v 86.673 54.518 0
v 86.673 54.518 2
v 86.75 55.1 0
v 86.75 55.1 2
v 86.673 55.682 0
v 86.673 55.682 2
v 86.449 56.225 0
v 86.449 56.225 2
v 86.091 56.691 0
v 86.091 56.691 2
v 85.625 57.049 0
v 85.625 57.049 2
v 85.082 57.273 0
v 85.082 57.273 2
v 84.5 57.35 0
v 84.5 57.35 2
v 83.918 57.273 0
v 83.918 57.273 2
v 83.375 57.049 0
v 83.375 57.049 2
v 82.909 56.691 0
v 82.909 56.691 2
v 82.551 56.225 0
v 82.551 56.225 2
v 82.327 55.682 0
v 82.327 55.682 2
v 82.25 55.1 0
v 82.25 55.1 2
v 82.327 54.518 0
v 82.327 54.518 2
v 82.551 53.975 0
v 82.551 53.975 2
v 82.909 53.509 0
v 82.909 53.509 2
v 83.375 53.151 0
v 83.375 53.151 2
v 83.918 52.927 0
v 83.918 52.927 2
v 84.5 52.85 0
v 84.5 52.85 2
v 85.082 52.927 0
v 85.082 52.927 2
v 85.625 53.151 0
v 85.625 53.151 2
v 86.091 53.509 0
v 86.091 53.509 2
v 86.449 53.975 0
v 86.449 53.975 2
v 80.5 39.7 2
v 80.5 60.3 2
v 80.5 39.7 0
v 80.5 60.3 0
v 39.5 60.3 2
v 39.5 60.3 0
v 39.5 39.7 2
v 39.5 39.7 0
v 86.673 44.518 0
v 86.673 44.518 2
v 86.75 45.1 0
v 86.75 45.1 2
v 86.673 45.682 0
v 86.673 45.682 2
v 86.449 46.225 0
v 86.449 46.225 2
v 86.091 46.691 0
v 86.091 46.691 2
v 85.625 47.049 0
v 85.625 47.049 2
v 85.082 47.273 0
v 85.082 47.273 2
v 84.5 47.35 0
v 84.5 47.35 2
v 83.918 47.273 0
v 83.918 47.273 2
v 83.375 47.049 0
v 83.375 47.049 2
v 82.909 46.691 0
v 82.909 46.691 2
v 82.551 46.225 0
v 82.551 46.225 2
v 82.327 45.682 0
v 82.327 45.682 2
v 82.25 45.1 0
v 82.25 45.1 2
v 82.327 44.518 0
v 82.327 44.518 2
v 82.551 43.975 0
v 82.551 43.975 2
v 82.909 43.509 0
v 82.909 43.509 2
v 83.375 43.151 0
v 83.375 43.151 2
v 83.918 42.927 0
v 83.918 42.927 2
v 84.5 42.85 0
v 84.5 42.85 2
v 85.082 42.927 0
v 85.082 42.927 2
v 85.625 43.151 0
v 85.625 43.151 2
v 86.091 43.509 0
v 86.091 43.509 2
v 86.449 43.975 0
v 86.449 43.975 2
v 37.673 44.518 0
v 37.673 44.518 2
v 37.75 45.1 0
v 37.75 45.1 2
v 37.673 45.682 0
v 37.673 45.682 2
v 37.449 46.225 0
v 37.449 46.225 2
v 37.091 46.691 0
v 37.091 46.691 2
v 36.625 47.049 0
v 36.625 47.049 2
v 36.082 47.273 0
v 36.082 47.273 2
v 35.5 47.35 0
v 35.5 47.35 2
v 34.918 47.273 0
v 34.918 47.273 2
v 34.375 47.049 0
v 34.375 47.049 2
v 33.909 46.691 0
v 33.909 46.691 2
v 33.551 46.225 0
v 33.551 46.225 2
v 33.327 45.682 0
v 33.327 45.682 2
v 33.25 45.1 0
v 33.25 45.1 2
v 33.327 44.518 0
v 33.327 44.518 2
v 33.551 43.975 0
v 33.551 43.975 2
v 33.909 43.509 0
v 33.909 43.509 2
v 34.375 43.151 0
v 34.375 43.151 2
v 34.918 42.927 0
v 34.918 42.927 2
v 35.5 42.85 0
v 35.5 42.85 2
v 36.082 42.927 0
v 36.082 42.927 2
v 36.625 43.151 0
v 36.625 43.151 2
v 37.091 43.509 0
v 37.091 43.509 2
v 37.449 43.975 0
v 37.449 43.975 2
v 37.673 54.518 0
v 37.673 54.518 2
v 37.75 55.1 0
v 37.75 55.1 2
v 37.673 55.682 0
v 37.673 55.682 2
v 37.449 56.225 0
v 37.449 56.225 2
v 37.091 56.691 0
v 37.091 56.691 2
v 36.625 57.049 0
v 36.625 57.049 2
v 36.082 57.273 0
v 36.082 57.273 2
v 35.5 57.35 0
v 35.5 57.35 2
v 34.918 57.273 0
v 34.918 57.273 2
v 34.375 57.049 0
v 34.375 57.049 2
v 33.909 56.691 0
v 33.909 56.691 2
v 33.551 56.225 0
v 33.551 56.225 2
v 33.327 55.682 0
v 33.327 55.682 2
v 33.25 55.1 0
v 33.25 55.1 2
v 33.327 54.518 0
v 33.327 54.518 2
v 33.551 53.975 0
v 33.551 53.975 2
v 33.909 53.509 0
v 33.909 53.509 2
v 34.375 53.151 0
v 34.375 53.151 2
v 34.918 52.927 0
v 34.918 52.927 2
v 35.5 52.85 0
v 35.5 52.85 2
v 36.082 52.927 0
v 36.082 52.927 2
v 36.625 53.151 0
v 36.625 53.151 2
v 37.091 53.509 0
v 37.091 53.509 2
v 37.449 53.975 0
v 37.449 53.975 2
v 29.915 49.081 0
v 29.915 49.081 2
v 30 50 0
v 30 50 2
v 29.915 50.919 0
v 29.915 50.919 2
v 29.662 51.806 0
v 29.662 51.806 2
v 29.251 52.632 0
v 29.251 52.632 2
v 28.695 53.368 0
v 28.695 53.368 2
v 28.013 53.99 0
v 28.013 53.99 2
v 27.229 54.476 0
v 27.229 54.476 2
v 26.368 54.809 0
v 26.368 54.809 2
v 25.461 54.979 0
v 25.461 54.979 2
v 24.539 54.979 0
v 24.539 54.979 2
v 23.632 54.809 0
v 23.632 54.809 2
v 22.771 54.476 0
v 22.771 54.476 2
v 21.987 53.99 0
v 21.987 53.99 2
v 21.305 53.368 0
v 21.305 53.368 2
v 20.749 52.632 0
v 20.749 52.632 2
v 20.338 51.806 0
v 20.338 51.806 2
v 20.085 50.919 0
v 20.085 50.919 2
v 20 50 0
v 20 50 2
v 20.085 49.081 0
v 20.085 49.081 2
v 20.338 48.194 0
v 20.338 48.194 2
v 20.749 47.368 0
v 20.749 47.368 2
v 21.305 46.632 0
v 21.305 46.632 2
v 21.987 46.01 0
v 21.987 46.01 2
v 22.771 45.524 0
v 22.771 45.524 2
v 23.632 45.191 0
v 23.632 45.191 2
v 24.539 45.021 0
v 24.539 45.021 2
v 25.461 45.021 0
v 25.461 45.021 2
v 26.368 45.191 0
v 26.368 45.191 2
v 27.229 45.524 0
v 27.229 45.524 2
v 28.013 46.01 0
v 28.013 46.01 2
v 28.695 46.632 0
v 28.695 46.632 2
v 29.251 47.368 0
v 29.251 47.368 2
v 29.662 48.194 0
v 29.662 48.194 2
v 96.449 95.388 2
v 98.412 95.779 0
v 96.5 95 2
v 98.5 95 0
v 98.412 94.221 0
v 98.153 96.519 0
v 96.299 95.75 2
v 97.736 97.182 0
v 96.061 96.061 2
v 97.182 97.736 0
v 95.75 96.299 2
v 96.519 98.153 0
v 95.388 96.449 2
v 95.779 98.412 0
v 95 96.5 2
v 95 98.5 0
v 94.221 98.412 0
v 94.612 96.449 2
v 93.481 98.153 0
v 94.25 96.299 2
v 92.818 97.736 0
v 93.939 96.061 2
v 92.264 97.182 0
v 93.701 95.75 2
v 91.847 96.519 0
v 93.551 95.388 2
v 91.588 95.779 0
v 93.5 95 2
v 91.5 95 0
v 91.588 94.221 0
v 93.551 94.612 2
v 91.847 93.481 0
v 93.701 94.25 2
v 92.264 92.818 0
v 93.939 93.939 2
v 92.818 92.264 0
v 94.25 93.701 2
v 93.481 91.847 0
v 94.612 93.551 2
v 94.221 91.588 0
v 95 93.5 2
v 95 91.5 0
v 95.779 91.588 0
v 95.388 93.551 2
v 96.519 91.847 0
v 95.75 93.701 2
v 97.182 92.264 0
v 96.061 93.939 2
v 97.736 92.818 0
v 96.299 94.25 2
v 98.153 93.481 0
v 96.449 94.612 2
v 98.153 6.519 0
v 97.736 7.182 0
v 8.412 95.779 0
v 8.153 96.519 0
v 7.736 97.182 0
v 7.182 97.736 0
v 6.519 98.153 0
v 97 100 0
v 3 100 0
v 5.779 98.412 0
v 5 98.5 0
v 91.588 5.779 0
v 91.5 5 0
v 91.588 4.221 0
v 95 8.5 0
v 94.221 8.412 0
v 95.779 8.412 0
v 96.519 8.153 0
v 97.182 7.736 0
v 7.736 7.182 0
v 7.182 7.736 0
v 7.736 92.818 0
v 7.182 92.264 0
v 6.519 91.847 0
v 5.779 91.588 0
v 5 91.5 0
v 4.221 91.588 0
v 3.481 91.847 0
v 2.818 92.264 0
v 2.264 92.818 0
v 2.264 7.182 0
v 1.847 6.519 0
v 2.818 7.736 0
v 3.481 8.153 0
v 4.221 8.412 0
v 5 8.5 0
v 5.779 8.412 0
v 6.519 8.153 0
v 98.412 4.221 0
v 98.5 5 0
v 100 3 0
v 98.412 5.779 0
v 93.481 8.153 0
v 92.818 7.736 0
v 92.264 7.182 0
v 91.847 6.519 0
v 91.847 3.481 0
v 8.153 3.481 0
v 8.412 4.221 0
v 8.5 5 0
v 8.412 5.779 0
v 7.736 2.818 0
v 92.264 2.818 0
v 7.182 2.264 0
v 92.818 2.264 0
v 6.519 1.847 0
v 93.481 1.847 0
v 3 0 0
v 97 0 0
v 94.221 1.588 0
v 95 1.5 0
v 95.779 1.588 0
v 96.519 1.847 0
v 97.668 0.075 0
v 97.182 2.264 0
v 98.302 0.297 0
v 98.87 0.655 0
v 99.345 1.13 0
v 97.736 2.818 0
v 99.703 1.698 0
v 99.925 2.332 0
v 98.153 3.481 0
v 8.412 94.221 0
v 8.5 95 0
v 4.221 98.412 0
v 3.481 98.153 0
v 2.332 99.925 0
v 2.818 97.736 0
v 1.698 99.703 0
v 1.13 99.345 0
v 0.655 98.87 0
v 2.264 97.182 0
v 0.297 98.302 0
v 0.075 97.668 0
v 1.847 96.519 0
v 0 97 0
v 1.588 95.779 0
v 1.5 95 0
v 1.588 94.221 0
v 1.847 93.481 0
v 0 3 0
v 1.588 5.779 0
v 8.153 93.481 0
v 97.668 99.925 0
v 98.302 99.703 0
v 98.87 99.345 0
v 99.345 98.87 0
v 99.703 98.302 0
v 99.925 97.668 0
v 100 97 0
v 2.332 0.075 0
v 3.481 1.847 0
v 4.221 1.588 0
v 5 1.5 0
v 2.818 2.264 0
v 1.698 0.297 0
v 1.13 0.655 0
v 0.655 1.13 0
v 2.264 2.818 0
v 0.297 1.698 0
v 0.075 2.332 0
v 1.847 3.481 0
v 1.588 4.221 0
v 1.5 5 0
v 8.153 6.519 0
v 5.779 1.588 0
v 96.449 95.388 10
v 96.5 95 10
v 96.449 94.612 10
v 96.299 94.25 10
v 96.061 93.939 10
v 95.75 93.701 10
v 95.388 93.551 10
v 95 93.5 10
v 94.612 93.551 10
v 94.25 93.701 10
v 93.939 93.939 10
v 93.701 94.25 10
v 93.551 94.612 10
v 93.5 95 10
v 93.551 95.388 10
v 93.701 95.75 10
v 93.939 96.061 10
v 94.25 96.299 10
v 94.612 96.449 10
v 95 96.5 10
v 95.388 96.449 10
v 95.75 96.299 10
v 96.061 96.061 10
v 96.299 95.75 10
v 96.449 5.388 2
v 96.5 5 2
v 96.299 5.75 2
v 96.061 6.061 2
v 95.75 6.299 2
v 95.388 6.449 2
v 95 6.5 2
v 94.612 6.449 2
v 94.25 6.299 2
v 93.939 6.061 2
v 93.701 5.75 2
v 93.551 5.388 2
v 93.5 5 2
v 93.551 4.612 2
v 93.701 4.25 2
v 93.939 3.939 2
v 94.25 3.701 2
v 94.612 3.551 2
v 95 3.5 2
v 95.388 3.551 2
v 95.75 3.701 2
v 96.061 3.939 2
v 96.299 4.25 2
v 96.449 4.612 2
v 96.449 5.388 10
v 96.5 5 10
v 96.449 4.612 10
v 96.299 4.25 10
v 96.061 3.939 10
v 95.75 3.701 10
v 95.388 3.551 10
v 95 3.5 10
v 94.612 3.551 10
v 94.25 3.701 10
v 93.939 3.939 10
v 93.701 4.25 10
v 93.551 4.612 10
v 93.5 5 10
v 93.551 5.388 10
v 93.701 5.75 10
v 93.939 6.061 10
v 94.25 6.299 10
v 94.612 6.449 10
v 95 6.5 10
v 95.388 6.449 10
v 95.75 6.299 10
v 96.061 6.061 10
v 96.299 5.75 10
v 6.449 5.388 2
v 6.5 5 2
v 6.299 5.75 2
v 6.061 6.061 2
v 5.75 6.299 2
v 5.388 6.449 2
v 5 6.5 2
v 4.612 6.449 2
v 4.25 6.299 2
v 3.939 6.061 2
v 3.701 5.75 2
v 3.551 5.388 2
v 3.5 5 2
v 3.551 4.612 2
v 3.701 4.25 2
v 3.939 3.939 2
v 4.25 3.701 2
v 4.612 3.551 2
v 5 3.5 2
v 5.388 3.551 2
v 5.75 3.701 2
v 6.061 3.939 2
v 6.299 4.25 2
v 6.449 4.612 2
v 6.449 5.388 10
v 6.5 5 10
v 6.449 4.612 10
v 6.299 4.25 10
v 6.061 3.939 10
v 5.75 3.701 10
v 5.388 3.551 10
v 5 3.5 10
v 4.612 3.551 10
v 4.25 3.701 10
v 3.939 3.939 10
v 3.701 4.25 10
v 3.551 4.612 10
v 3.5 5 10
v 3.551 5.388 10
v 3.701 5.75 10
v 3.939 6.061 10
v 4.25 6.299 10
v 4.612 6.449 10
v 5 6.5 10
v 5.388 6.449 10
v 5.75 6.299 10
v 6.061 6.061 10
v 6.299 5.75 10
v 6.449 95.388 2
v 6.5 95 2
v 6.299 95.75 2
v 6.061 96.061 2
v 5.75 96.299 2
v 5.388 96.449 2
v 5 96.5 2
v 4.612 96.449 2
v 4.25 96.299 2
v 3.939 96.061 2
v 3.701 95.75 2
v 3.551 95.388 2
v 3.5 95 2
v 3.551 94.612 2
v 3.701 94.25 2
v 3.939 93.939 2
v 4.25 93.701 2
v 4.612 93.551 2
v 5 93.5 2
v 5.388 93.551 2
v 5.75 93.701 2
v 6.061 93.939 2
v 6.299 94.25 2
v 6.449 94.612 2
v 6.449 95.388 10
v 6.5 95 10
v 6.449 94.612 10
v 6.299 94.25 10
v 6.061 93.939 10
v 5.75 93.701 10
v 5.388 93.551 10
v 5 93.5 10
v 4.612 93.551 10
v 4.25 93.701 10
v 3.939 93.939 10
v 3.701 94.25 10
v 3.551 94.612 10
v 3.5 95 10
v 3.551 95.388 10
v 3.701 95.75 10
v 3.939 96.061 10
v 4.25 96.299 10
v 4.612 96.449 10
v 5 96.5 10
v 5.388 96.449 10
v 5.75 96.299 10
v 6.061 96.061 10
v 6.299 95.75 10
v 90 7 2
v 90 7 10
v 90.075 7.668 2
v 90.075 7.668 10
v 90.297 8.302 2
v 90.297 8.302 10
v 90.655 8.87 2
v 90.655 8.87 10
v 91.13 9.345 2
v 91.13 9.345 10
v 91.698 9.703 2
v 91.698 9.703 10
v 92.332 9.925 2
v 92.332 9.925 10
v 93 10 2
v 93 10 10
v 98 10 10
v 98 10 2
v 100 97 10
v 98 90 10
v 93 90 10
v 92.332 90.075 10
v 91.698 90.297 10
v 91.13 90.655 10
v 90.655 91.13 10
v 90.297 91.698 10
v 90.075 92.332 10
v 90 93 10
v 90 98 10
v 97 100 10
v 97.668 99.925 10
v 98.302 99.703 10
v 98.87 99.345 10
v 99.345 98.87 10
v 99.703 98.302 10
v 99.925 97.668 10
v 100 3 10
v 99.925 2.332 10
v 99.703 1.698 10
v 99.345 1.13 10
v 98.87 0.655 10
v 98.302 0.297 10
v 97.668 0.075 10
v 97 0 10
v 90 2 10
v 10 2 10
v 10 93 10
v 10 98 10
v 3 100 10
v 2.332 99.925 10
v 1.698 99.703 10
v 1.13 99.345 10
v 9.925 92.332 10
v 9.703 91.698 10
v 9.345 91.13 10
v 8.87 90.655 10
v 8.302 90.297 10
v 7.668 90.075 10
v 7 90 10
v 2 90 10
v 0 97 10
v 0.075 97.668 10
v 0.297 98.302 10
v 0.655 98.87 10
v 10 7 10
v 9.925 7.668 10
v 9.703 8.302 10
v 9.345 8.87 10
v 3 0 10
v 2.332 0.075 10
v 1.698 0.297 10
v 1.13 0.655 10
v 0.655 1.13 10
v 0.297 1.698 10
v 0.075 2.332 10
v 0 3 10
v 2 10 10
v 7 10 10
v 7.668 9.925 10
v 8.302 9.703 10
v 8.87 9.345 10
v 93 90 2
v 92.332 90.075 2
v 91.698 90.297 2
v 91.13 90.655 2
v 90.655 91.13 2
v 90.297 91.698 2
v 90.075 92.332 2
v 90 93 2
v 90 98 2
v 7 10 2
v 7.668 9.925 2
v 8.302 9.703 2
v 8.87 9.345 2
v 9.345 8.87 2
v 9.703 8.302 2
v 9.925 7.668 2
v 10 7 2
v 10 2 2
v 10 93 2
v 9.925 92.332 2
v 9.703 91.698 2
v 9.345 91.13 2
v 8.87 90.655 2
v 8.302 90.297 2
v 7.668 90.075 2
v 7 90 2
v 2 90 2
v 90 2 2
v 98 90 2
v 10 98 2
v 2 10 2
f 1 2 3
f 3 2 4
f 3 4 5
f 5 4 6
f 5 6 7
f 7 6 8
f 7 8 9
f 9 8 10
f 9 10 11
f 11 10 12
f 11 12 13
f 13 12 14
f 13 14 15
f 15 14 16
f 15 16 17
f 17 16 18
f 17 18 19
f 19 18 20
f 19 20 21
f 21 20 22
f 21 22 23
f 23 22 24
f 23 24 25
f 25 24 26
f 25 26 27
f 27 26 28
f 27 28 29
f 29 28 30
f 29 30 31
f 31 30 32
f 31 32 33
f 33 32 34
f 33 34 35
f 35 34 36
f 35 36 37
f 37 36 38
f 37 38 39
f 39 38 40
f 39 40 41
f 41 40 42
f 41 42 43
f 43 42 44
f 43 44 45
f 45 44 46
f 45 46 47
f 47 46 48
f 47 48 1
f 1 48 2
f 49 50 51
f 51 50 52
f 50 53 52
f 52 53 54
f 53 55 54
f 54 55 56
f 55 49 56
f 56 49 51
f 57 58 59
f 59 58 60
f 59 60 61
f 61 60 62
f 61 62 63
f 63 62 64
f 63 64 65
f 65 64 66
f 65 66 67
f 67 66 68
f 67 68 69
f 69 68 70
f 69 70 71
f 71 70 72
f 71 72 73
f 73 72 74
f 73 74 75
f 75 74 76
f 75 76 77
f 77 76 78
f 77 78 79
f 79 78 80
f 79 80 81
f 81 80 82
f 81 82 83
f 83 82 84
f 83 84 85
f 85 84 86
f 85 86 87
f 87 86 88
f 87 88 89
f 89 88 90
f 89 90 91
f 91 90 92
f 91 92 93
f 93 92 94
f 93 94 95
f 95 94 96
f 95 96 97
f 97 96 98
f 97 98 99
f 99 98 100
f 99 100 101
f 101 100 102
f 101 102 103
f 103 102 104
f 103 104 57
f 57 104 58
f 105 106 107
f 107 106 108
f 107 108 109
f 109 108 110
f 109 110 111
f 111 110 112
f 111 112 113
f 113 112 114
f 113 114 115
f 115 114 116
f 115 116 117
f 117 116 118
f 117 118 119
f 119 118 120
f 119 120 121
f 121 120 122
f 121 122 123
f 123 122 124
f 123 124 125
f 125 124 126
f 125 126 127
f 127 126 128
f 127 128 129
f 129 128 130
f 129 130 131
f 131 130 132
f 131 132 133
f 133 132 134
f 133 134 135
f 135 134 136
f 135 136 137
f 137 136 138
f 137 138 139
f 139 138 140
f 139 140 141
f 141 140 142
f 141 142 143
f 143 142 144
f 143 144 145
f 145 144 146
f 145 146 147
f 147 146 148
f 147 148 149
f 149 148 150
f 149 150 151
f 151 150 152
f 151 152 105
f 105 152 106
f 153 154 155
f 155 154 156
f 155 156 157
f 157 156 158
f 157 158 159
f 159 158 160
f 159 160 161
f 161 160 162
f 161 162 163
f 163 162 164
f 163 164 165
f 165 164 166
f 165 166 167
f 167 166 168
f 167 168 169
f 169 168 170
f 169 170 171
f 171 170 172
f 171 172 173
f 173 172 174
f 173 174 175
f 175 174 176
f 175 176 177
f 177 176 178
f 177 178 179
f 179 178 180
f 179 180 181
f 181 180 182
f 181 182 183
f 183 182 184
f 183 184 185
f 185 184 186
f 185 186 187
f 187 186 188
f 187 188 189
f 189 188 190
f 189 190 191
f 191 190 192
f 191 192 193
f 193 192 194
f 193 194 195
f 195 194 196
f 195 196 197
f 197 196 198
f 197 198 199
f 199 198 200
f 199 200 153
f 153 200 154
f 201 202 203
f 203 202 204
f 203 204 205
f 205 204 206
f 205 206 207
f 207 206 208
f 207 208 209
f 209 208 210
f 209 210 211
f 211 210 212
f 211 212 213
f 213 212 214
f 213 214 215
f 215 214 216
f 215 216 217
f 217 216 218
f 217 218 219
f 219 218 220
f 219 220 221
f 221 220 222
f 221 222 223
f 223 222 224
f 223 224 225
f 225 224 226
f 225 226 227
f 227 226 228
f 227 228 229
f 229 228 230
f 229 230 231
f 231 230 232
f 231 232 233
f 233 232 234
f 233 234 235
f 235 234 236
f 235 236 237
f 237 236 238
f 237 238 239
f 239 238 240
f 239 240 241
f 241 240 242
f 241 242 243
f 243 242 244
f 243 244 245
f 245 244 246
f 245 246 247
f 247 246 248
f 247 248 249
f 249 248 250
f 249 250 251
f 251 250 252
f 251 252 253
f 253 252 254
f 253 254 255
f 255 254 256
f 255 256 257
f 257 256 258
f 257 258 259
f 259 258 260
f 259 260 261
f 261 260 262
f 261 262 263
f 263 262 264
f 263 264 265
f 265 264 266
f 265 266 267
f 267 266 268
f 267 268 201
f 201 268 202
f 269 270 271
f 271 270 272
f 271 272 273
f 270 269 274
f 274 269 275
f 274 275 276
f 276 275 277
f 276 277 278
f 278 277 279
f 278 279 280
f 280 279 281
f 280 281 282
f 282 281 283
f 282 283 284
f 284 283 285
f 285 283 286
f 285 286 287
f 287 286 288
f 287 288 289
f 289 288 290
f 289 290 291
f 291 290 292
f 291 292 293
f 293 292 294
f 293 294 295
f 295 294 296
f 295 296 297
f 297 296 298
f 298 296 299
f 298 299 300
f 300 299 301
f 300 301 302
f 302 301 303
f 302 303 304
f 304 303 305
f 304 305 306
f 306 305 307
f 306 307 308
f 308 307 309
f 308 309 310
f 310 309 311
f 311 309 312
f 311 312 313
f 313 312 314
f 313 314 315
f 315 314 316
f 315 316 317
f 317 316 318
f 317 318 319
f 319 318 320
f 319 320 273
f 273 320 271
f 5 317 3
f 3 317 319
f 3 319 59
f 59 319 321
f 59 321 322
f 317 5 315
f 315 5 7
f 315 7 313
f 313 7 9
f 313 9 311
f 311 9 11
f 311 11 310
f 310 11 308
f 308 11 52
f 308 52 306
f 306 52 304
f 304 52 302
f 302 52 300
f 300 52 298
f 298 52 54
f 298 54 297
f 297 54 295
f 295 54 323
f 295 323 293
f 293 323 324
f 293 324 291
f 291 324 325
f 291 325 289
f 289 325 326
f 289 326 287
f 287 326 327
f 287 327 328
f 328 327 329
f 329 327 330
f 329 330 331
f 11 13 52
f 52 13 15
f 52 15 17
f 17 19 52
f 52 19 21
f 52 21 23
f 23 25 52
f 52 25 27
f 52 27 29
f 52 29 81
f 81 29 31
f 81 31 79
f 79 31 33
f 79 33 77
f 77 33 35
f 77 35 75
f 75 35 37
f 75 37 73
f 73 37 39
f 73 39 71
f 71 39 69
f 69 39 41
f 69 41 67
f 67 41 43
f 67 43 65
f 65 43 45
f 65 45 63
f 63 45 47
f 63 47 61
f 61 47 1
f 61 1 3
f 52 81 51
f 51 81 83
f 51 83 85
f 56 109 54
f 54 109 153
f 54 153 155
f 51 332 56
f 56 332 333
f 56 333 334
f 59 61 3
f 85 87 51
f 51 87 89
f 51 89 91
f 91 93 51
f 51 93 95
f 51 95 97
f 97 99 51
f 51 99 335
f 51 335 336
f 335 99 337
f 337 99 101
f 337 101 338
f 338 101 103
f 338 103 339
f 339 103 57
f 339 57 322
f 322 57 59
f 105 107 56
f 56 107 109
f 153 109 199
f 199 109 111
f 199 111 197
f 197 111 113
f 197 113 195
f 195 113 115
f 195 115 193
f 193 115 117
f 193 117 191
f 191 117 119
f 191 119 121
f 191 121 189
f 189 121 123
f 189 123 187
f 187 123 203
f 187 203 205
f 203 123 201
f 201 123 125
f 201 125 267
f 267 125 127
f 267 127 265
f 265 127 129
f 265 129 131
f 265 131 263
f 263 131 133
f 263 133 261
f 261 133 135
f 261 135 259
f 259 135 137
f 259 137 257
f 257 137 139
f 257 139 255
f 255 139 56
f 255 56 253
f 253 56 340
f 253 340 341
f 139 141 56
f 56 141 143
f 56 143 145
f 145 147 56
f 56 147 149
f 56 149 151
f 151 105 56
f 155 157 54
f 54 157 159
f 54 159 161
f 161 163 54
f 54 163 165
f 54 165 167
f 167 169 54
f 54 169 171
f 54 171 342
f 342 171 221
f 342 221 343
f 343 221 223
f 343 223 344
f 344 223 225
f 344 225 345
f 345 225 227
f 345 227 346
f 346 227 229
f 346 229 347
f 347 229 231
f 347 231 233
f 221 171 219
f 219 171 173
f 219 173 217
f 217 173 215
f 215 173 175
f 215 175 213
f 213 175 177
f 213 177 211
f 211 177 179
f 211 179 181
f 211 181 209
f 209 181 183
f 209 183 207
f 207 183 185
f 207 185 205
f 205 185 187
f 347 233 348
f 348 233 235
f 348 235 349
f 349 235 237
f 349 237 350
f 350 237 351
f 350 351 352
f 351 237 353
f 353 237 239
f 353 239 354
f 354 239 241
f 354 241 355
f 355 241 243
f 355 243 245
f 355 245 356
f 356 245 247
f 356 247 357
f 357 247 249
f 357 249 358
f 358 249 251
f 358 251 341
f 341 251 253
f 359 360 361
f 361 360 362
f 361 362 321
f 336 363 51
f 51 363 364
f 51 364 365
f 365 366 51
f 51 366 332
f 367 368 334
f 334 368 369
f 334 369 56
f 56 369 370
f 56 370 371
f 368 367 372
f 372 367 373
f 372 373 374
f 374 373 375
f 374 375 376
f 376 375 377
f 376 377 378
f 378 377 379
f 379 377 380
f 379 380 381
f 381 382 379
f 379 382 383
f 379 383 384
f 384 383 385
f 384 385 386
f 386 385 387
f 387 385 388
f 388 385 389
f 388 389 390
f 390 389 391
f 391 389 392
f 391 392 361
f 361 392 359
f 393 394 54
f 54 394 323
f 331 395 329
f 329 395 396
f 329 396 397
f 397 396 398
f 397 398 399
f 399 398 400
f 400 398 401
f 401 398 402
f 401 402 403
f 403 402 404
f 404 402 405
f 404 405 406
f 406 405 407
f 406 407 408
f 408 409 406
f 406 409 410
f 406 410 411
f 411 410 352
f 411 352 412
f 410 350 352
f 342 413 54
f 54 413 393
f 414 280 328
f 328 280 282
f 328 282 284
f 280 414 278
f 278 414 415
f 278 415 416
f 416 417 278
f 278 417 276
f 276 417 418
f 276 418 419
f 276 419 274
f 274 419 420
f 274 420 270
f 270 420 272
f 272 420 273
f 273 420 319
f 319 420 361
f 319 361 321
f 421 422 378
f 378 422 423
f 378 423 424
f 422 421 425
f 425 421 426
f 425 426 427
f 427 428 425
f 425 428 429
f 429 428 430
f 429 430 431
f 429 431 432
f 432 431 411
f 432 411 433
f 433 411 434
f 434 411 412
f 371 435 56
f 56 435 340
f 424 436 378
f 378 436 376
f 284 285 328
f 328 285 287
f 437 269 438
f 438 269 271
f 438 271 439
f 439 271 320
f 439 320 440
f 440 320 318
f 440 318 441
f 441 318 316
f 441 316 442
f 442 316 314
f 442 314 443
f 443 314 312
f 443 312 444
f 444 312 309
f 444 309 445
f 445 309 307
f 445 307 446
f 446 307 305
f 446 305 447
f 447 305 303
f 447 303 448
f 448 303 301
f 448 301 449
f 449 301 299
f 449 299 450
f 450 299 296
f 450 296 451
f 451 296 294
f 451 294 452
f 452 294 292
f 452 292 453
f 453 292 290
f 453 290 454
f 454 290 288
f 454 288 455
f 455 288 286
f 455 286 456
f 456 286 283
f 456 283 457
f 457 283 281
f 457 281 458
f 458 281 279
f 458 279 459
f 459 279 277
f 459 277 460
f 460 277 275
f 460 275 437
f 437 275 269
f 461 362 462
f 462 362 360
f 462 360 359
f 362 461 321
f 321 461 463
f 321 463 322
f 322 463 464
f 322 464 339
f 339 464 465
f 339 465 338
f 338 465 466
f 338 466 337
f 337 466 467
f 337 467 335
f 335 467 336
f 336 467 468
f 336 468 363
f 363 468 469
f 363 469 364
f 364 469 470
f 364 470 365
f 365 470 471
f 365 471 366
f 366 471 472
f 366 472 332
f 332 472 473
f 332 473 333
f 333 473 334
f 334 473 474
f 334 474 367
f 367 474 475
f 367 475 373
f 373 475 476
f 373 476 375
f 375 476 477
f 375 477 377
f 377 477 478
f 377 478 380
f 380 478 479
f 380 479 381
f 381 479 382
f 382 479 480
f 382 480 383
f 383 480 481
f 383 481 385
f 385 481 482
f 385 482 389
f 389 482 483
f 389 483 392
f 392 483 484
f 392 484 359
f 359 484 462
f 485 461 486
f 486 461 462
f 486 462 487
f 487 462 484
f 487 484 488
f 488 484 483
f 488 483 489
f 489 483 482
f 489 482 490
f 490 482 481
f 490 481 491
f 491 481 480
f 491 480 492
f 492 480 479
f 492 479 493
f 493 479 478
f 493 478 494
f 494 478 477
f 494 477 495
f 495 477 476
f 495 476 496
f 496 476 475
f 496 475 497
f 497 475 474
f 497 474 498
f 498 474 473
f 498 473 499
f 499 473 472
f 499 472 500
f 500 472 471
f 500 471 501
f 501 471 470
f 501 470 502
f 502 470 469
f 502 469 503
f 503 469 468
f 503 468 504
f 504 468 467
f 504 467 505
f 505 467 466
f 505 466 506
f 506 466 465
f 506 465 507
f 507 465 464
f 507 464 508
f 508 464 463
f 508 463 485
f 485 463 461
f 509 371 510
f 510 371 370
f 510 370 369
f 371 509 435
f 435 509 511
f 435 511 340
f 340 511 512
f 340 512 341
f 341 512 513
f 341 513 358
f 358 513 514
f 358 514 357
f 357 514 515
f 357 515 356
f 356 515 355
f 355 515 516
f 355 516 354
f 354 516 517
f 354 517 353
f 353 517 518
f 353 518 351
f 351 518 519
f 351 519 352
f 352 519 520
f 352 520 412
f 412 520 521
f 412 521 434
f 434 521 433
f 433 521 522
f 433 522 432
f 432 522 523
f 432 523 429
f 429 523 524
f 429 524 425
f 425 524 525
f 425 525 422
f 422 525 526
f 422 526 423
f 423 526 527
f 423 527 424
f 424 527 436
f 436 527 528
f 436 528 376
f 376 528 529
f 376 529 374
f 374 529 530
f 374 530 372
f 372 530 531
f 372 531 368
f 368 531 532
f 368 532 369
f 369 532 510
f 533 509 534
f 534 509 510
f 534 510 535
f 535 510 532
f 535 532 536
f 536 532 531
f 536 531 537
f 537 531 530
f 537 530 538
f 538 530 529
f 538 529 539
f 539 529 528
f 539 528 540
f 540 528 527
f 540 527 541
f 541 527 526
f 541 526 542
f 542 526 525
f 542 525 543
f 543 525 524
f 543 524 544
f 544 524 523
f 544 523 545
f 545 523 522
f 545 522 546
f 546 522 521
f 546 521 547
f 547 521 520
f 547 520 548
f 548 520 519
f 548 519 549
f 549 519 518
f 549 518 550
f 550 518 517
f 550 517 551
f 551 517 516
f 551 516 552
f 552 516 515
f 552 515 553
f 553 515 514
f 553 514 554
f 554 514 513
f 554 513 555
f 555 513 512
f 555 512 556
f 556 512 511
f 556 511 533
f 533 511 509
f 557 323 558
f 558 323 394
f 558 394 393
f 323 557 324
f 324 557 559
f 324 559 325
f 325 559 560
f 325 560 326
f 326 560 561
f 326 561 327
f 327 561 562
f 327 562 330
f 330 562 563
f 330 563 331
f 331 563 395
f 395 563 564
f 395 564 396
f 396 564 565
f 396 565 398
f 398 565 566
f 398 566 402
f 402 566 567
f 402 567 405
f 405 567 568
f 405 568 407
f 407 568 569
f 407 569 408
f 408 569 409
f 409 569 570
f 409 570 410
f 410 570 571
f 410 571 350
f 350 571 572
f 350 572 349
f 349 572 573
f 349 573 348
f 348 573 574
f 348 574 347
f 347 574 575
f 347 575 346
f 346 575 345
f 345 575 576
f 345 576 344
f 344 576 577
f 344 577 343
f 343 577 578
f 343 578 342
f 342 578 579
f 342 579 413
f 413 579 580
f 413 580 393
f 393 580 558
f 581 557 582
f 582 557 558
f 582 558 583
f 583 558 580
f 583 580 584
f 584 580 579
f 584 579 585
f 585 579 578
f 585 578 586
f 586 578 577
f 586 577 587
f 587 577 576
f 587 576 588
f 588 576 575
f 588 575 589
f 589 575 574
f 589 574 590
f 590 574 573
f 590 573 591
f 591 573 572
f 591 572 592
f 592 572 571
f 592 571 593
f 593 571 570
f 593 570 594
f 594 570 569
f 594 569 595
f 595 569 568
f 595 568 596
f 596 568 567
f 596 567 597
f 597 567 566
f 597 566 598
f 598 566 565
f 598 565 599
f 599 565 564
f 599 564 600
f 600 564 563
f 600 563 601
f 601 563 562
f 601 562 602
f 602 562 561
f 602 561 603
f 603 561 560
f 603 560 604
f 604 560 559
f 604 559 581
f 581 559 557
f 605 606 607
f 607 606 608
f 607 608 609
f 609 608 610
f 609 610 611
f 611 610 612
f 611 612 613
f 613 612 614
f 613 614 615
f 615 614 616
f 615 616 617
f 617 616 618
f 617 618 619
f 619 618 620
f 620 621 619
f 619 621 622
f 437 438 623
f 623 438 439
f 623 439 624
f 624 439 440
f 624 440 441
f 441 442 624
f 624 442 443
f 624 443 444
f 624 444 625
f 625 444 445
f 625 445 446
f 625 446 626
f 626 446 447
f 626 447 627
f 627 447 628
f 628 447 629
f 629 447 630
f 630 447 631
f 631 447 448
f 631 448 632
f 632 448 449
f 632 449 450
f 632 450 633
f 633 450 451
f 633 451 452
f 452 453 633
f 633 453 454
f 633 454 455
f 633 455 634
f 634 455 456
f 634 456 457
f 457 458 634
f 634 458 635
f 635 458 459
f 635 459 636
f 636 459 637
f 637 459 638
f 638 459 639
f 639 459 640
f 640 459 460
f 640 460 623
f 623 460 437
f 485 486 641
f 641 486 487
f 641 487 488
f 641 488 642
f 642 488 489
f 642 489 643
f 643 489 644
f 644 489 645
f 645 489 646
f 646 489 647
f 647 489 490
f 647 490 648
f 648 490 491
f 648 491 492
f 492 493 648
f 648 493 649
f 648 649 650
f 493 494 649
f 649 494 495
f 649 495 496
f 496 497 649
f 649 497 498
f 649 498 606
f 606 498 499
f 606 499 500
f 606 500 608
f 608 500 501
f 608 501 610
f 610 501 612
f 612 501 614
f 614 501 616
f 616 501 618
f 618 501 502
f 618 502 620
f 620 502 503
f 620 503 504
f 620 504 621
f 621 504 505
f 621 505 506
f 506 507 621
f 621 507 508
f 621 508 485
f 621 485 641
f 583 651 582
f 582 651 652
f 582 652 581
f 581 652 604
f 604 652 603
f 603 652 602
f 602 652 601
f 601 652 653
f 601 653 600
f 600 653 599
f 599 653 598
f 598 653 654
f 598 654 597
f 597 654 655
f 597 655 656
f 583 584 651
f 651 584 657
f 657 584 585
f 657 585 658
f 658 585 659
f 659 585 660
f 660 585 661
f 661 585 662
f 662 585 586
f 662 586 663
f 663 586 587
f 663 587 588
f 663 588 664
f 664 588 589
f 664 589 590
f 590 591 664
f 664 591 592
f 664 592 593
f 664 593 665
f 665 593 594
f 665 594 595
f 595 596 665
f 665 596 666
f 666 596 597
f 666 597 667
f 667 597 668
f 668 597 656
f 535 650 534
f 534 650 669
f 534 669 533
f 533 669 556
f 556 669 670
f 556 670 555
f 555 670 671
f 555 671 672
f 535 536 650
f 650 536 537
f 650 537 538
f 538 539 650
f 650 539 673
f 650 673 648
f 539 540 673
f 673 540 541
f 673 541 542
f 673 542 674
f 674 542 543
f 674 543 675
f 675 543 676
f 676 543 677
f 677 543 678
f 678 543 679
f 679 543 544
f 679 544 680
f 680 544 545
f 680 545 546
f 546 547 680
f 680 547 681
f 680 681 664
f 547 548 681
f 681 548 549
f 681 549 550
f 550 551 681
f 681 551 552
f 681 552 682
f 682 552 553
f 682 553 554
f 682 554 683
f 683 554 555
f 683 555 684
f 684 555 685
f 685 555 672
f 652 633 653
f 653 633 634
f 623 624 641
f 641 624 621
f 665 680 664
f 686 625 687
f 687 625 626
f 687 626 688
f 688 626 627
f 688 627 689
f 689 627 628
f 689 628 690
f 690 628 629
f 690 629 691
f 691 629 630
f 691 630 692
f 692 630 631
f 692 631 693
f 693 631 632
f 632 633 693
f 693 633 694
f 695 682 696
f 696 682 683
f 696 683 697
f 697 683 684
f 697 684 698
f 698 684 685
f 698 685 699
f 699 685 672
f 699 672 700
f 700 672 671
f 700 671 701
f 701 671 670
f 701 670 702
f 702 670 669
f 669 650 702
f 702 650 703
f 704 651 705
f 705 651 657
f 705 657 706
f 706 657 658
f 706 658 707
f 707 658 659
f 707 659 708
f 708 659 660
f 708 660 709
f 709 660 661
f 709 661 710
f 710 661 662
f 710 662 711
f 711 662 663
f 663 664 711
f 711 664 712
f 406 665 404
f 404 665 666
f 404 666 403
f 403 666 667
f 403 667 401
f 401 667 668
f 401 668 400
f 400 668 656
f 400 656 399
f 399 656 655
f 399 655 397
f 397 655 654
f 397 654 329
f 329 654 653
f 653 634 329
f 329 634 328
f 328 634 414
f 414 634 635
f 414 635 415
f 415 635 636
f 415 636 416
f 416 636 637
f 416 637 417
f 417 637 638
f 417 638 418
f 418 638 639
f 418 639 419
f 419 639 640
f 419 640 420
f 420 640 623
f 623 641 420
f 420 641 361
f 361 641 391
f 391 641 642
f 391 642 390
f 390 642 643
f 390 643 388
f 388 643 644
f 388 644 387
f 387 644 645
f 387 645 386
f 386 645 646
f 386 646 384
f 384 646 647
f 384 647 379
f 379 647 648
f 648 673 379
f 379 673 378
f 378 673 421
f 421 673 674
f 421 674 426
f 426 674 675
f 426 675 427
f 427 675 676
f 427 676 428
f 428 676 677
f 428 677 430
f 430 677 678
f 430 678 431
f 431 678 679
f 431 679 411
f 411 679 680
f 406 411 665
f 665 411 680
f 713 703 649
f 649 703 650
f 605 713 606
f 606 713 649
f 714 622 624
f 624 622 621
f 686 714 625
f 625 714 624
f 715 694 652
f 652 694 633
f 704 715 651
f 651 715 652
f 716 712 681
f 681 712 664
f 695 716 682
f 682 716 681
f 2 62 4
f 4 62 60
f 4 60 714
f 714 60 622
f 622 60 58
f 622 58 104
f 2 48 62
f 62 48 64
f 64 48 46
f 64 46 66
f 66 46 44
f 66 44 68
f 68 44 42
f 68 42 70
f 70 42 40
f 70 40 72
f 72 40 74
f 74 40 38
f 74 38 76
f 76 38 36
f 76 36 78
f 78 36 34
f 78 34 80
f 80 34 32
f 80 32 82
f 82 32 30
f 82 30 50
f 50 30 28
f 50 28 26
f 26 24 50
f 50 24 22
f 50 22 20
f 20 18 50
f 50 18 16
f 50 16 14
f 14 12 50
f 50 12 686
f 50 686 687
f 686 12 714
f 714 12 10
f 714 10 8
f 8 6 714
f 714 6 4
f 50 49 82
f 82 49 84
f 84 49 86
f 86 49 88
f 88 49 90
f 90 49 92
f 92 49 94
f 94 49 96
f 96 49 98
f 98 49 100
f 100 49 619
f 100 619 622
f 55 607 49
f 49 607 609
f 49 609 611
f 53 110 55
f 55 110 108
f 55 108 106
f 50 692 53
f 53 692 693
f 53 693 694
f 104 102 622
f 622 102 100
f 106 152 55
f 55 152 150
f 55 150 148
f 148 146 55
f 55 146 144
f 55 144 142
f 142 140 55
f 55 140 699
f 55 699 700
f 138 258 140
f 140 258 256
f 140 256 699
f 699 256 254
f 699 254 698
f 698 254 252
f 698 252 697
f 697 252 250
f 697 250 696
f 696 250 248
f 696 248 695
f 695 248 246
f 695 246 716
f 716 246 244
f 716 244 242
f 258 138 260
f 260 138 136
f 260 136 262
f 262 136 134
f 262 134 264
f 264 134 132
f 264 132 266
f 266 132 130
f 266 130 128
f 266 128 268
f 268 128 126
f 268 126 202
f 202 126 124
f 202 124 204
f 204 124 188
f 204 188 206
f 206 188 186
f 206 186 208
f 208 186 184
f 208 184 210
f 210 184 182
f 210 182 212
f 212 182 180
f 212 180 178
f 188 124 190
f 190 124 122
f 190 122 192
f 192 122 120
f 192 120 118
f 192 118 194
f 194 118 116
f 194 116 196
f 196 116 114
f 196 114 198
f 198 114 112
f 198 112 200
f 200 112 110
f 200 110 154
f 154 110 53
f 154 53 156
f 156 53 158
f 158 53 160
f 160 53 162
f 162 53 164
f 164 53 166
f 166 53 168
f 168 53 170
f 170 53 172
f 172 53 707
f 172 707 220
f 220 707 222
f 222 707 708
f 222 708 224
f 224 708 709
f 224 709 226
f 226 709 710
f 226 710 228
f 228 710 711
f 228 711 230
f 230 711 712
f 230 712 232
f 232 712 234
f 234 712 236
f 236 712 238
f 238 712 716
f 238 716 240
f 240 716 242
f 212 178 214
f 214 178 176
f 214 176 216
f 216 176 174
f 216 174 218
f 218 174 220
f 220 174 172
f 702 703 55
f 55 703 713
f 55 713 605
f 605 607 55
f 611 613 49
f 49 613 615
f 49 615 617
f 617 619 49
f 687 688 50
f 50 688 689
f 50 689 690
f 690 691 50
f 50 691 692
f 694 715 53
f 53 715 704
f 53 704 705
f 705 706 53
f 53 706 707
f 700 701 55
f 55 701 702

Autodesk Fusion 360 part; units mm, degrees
sketch "스케치1" plane through (0, 0, 0) normal (0, 0, 1) x (1, 0, 0)
  line L0 (0, 0) -> (100, 0)
  line L1 (100, 0) -> (100, 100)
  line L2 (100, 100) -> (0, 100)
  line L3 (0, 100) -> (0, 0)
  dimension "d1" = 100
  dimension "d2" = 100
extrude "돌출1" add sketch "스케치1" along normal blind 2
sketch "스케치2" plane through (0, 0, 2) normal (0, 0, 1) x (-1, 0, 0)
  line L0 (0, -100) -> (-100, -100)
  line L1 (-100, -100) -> (-100, 0)
  line L2 (-100, 0) -> (0, 0)
  line L3 (0, 0) -> (0, -100)
  line L4 (-10, -98) -> (-90, -98)
  line L5 (-98, -90) -> (-98, -10)
  line L6 (-90, -2) -> (-10, -2)
  line L7 (-2, -10) -> (-2, -90)
  line L8 (-2, -90) -> (-10, -90)
  line L9 (-10, -90) -> (-10, -98)
  line L10 (-90, -98) -> (-90, -90)
  line L11 (-90, -90) -> (-98, -90)
  line L12 (-98, -10) -> (-90, -10)
  line L13 (-90, -10) -> (-90, -2)
  line L14 (-10, -2) -> (-10, -10)
  line L15 (-10, -10) -> (-2, -10)
  point P0 (0, -100)
  point P1 (-100, 0)
  dimension "d5" = 2
  dimension "d6" = 2
  dimension "d7" = 8
  dimension "d8" = 8
  dimension "d9" = 2
  dimension "d10" = 2
  dimension "d11" = 8
  dimension "d12" = 8
extrude "돌출2" add sketch "스케치2" along normal blind 8
sketch "스케치3" plane through (0, 0, 10) normal (0, 0, 1) x (-1, 0, 0)
  circle A0 centre (-5, -95) radius 1.5
  circle A1 centre (-95, -95) radius 1.5
  circle A2 centre (-95, -5) radius 1.5
  circle A3 centre (-5, -5) radius 1.5
  dimension "d15" = 3
  dimension "d16" = 5
  dimension "d17" = 5
  dimension "d18" = 90
  dimension "d19" = 90
extrude "돌출3" cut sketch "스케치3" against normal blind 10
fillet "필렛1" radius 3 4 edges at (0, 0, 5) (100, 0, 5) (100, 100, 5) (0, 100, 5)
fillet "필렛1" radius 3 4 edges at (10, 90, 6) (10, 10, 6) (90, 90, 6) (90, 10, 6)
chamfer "챔퍼1" distance 2 angle 45 4 edges at (6.3985, 95.5424, 0) (6.3985, 5.5424, 0) (96.3985, 5.5424, 0) (96.3985, 95.5424, 0)
sketch "스케치4" plane through (0, 0, 2) normal (0, 0, 1) x (-1, 0, 0)
  line L0 (-39.5, -60.3) -> (-80.5, -60.3)
  line L1 (-80.5, -60.3) -> (-80.5, -39.7)
  line L2 (-80.5, -39.7) -> (-39.5, -39.7)
  line L3 (-39.5, -39.7) -> (-39.5, -60.3)
  circle A0 centre (-35.5, -55.1) radius 2.25
  circle A1 centre (-35.5, -45.1) radius 2.25
  circle A2 centre (-84.5, -55.1) radius 2.25
  circle A3 centre (-84.5, -45.1) radius 2.25
  circle A4 centre (-25, -50) radius 5
  point P0 (-3, -100)
  dimension "d27" = 20.6
  dimension "d28" = 41
  dimension "d29" = 39.5
  dimension "d33" = 10
  dimension "d34" = 49
  dimension "d35" = 4.5
  dimension "d37" = 5.4
  dimension "d41" = 39.7
  dimension "d43" = 4
  dimension "d45" = 10
  dimension "d46" = 25
  dimension "d47" = 50
extrude "돌출4" cut sketch "스케치4" against normal blind 2
